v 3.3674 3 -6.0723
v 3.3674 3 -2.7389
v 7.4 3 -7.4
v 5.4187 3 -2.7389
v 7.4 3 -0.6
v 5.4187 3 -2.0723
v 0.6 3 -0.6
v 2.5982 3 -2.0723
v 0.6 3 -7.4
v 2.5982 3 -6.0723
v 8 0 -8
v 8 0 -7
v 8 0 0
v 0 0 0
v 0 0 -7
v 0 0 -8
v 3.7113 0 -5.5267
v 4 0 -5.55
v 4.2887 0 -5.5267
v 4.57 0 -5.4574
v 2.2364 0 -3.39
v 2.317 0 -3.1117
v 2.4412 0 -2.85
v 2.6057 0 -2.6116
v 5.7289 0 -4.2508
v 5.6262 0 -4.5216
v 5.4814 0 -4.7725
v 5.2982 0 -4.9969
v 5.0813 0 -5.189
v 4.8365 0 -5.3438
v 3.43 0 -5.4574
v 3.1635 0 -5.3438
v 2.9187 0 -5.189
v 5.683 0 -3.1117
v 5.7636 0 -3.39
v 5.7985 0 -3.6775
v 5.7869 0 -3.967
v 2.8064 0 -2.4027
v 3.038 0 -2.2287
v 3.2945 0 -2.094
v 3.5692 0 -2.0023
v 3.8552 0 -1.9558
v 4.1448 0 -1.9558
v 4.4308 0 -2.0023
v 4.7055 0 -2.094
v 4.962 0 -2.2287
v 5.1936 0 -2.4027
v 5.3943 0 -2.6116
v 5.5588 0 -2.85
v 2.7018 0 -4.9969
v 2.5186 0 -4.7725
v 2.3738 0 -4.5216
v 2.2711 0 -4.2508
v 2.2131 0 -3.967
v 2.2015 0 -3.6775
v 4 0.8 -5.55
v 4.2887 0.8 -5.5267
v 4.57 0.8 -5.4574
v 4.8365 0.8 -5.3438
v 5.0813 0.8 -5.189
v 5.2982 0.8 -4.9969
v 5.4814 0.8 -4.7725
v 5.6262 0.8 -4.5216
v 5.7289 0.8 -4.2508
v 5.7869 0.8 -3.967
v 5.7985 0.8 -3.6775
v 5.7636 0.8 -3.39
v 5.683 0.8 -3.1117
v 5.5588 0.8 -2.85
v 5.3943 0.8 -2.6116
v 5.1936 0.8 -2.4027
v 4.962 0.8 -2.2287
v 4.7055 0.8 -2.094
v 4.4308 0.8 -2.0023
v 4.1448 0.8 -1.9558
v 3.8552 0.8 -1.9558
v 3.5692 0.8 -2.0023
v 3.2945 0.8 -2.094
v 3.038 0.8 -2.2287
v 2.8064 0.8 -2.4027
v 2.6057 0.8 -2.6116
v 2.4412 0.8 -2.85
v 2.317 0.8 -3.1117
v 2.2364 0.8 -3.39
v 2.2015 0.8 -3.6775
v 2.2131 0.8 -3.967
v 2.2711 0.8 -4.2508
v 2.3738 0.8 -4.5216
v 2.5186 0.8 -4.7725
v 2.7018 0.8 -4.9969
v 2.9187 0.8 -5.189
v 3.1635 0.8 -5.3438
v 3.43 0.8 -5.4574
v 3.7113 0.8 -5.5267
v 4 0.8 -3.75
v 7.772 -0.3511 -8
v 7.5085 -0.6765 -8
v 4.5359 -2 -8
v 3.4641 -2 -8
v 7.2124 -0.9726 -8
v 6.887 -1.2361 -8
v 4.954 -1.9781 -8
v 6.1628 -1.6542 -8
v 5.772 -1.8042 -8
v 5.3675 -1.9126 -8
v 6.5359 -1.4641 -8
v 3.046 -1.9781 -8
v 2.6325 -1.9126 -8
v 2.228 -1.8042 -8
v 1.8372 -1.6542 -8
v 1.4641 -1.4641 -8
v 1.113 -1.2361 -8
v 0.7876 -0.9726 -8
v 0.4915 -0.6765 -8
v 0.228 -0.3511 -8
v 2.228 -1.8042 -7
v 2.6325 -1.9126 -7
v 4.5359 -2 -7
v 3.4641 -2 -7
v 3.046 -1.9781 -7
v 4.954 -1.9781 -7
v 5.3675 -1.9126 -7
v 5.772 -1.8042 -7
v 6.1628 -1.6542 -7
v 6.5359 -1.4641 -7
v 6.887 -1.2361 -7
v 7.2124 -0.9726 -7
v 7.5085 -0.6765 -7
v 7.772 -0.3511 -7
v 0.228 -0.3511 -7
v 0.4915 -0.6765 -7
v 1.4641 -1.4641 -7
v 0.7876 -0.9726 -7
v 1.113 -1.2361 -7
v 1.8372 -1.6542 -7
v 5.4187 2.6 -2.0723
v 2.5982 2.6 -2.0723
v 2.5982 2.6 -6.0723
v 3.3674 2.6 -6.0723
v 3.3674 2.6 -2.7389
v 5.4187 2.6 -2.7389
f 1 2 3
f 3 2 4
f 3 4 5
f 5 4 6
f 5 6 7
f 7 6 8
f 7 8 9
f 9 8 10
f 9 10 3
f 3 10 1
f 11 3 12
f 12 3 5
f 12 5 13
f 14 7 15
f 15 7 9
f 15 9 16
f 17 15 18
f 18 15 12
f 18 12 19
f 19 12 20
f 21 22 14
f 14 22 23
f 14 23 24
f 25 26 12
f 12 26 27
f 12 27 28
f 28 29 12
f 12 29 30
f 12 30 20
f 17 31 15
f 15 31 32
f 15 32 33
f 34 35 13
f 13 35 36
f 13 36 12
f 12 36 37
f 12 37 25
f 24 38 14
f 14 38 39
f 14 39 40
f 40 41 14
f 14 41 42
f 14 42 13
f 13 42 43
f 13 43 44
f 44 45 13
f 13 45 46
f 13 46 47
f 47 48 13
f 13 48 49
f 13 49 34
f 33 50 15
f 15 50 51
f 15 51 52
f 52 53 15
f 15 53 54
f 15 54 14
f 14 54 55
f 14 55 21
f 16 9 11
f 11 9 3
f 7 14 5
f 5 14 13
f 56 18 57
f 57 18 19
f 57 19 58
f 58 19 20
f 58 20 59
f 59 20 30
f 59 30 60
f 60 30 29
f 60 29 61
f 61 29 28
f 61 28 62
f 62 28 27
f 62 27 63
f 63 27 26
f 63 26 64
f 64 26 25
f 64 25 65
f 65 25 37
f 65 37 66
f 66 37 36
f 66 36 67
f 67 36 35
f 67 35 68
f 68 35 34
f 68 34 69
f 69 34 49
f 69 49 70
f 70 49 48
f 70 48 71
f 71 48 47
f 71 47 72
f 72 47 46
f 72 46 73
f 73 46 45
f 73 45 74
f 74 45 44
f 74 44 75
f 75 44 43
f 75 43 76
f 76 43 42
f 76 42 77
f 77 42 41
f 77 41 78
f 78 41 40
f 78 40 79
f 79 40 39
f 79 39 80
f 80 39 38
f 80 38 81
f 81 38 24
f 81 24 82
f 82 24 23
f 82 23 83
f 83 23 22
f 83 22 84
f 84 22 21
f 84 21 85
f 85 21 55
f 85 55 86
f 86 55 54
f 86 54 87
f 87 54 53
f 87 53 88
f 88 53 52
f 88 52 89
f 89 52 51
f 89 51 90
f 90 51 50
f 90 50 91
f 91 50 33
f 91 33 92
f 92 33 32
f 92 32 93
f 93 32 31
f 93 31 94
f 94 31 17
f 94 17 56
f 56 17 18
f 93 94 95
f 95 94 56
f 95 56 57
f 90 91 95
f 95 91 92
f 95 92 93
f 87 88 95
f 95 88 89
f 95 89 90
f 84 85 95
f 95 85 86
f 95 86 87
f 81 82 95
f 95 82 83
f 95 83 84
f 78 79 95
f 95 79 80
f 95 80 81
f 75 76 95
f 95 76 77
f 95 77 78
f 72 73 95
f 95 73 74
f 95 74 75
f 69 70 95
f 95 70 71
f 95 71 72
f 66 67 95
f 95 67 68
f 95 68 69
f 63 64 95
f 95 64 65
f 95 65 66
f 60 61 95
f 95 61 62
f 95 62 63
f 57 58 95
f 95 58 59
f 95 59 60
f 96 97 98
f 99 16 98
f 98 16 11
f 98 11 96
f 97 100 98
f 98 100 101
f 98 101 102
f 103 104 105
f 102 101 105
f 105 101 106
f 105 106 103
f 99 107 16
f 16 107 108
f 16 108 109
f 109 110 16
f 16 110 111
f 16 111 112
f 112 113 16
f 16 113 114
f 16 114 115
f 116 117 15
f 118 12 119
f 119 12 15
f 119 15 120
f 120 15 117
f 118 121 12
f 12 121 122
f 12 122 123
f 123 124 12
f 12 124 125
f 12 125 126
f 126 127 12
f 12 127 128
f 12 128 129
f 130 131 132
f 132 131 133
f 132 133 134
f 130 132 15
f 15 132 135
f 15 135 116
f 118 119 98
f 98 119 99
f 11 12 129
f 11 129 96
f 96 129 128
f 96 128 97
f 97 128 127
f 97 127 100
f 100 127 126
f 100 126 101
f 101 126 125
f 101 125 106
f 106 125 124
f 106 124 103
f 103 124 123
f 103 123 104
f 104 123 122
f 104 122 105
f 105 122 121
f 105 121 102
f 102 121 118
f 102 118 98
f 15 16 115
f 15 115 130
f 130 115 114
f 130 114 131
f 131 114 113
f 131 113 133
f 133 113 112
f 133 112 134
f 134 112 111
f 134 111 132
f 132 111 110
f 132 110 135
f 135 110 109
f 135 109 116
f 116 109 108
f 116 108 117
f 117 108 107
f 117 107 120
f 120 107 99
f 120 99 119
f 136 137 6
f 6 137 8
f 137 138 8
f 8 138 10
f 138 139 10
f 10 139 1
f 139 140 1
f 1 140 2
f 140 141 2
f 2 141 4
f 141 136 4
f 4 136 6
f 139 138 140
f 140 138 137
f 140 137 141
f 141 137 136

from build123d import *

# Parameters (mm, degrees)
SKETCH1_W               = 8
SKETCH1_H               = 8
BOSS_EXTRUDE1_DEPTH     = 3
CUT_EXTRUDE1_DEPTH      = 12.704699911
CUT_EXTRUDE1_DEPTH_BACK = 12.704699911
CUT_EXTRUDE2_DEPTH      = 11
SKETCH4_R               = 1.8
CUT_EXTRUDE3_DEPTH      = 0.8
SKETCH5_W               = 8
SKETCH5_H               = 1
BOSS_EXTRUDE2_DEPTH     = 2
FILLET1_R               = 4
CUT_EXTRUDE4_DEPTH      = 0.4


with BuildPart() as part:
    # Sketch1 → Boss-Extrude1 (new body)
    with BuildSketch(Plane(origin=(0, 0, 0), x_dir=(1, 0, 0), z_dir=(0, 1, 0))):
        with Locations((4, 4)):
            Rectangle(SKETCH1_W, SKETCH1_H)
    extrude(amount=BOSS_EXTRUDE1_DEPTH)

    # Sketch2 → Cut-Extrude1 (cut, two sides: drawn at the far end of the back side and taken through both)
    with BuildSketch(Plane.XY.offset(-CUT_EXTRUDE1_DEPTH_BACK)):
        Polygon((0, 0), (0.6, 3), (0, 3), align=None)
        Polygon((8, 0), (7.4, 3), (8, 3), align=None)
    extrude(amount=CUT_EXTRUDE1_DEPTH + CUT_EXTRUDE1_DEPTH_BACK, mode=Mode.SUBTRACT)

    # Sketch3 → Cut-Extrude2 (cut)
    with BuildSketch(Plane(origin=(0, 0, 0), x_dir=(0, 0, -1), z_dir=(1, 0, 0))):
        Polygon((0, 0), (0.6, 3), (0, 3), align=None)
        Polygon((8, 3), (7.4, 3), (8, 0), align=None)
    extrude(amount=CUT_EXTRUDE2_DEPTH, mode=Mode.SUBTRACT)

    # Sketch4 → Cut-Extrude3 (cut)
    with BuildSketch(Plane.XZ):
        with Locations(Location((4, -3.75, 0), (0, 0, 270))):
            Circle(SKETCH4_R)
    extrude(amount=-CUT_EXTRUDE3_DEPTH, mode=Mode.SUBTRACT)

    # Sketch5 → Boss-Extrude2 (add)
    with BuildSketch(Plane.XZ):
        with Locations((4, -7.5)):
            Rectangle(SKETCH5_W, SKETCH5_H)
    extrude(amount=BOSS_EXTRUDE2_DEPTH)

    # Fillet1
    # the kernel refuses this fillet: 4 mm, written as the material it takes off along each edge
    with BuildSketch(Plane(origin=(8, -2, -16.660254038), x_dir=(0, 1, 0), z_dir=(0, 0, 1)), Plane(origin=(0, -2, 1.660254038), x_dir=(0, 1, 0), z_dir=(0, 0, -1))) as fillet1_piece_1:
        with BuildLine():
            CenterArc((4, 3.464101615), FILLET1_R, 180, 60)
            Line((0, 3.464101615), (-0.08, 3.464101615))
            Line((-0.08, 3.464101615), (-0.08, 0))
            Line((-0.08, 0), (0, -0.08))
            ThreePointArc((0, -0.08), (1, -0.08), (1.96, -0.069282032))
            Line((1.96, -0.069282032), (2, 0))
        make_face()
    extrude(amount=18.320508076, mode=Mode.SUBTRACT)

    # Sketch6 → Cut-Extrude4 (cut)
    with BuildSketch(Plane(origin=(0, 3, 0), x_dir=(1, 0, 0), z_dir=(0, 1, 0))):
        Polygon((2.598201218, 2.07225421), (2.598201218, 6.07225421), (3.367431987, 6.07225421), (3.367431987, 2.738920877), (5.418714038, 2.738920877), (5.418714038, 2.07225421), align=None)
    extrude(amount=-CUT_EXTRUDE4_DEPTH, mode=Mode.SUBTRACT)


solid = part.part
